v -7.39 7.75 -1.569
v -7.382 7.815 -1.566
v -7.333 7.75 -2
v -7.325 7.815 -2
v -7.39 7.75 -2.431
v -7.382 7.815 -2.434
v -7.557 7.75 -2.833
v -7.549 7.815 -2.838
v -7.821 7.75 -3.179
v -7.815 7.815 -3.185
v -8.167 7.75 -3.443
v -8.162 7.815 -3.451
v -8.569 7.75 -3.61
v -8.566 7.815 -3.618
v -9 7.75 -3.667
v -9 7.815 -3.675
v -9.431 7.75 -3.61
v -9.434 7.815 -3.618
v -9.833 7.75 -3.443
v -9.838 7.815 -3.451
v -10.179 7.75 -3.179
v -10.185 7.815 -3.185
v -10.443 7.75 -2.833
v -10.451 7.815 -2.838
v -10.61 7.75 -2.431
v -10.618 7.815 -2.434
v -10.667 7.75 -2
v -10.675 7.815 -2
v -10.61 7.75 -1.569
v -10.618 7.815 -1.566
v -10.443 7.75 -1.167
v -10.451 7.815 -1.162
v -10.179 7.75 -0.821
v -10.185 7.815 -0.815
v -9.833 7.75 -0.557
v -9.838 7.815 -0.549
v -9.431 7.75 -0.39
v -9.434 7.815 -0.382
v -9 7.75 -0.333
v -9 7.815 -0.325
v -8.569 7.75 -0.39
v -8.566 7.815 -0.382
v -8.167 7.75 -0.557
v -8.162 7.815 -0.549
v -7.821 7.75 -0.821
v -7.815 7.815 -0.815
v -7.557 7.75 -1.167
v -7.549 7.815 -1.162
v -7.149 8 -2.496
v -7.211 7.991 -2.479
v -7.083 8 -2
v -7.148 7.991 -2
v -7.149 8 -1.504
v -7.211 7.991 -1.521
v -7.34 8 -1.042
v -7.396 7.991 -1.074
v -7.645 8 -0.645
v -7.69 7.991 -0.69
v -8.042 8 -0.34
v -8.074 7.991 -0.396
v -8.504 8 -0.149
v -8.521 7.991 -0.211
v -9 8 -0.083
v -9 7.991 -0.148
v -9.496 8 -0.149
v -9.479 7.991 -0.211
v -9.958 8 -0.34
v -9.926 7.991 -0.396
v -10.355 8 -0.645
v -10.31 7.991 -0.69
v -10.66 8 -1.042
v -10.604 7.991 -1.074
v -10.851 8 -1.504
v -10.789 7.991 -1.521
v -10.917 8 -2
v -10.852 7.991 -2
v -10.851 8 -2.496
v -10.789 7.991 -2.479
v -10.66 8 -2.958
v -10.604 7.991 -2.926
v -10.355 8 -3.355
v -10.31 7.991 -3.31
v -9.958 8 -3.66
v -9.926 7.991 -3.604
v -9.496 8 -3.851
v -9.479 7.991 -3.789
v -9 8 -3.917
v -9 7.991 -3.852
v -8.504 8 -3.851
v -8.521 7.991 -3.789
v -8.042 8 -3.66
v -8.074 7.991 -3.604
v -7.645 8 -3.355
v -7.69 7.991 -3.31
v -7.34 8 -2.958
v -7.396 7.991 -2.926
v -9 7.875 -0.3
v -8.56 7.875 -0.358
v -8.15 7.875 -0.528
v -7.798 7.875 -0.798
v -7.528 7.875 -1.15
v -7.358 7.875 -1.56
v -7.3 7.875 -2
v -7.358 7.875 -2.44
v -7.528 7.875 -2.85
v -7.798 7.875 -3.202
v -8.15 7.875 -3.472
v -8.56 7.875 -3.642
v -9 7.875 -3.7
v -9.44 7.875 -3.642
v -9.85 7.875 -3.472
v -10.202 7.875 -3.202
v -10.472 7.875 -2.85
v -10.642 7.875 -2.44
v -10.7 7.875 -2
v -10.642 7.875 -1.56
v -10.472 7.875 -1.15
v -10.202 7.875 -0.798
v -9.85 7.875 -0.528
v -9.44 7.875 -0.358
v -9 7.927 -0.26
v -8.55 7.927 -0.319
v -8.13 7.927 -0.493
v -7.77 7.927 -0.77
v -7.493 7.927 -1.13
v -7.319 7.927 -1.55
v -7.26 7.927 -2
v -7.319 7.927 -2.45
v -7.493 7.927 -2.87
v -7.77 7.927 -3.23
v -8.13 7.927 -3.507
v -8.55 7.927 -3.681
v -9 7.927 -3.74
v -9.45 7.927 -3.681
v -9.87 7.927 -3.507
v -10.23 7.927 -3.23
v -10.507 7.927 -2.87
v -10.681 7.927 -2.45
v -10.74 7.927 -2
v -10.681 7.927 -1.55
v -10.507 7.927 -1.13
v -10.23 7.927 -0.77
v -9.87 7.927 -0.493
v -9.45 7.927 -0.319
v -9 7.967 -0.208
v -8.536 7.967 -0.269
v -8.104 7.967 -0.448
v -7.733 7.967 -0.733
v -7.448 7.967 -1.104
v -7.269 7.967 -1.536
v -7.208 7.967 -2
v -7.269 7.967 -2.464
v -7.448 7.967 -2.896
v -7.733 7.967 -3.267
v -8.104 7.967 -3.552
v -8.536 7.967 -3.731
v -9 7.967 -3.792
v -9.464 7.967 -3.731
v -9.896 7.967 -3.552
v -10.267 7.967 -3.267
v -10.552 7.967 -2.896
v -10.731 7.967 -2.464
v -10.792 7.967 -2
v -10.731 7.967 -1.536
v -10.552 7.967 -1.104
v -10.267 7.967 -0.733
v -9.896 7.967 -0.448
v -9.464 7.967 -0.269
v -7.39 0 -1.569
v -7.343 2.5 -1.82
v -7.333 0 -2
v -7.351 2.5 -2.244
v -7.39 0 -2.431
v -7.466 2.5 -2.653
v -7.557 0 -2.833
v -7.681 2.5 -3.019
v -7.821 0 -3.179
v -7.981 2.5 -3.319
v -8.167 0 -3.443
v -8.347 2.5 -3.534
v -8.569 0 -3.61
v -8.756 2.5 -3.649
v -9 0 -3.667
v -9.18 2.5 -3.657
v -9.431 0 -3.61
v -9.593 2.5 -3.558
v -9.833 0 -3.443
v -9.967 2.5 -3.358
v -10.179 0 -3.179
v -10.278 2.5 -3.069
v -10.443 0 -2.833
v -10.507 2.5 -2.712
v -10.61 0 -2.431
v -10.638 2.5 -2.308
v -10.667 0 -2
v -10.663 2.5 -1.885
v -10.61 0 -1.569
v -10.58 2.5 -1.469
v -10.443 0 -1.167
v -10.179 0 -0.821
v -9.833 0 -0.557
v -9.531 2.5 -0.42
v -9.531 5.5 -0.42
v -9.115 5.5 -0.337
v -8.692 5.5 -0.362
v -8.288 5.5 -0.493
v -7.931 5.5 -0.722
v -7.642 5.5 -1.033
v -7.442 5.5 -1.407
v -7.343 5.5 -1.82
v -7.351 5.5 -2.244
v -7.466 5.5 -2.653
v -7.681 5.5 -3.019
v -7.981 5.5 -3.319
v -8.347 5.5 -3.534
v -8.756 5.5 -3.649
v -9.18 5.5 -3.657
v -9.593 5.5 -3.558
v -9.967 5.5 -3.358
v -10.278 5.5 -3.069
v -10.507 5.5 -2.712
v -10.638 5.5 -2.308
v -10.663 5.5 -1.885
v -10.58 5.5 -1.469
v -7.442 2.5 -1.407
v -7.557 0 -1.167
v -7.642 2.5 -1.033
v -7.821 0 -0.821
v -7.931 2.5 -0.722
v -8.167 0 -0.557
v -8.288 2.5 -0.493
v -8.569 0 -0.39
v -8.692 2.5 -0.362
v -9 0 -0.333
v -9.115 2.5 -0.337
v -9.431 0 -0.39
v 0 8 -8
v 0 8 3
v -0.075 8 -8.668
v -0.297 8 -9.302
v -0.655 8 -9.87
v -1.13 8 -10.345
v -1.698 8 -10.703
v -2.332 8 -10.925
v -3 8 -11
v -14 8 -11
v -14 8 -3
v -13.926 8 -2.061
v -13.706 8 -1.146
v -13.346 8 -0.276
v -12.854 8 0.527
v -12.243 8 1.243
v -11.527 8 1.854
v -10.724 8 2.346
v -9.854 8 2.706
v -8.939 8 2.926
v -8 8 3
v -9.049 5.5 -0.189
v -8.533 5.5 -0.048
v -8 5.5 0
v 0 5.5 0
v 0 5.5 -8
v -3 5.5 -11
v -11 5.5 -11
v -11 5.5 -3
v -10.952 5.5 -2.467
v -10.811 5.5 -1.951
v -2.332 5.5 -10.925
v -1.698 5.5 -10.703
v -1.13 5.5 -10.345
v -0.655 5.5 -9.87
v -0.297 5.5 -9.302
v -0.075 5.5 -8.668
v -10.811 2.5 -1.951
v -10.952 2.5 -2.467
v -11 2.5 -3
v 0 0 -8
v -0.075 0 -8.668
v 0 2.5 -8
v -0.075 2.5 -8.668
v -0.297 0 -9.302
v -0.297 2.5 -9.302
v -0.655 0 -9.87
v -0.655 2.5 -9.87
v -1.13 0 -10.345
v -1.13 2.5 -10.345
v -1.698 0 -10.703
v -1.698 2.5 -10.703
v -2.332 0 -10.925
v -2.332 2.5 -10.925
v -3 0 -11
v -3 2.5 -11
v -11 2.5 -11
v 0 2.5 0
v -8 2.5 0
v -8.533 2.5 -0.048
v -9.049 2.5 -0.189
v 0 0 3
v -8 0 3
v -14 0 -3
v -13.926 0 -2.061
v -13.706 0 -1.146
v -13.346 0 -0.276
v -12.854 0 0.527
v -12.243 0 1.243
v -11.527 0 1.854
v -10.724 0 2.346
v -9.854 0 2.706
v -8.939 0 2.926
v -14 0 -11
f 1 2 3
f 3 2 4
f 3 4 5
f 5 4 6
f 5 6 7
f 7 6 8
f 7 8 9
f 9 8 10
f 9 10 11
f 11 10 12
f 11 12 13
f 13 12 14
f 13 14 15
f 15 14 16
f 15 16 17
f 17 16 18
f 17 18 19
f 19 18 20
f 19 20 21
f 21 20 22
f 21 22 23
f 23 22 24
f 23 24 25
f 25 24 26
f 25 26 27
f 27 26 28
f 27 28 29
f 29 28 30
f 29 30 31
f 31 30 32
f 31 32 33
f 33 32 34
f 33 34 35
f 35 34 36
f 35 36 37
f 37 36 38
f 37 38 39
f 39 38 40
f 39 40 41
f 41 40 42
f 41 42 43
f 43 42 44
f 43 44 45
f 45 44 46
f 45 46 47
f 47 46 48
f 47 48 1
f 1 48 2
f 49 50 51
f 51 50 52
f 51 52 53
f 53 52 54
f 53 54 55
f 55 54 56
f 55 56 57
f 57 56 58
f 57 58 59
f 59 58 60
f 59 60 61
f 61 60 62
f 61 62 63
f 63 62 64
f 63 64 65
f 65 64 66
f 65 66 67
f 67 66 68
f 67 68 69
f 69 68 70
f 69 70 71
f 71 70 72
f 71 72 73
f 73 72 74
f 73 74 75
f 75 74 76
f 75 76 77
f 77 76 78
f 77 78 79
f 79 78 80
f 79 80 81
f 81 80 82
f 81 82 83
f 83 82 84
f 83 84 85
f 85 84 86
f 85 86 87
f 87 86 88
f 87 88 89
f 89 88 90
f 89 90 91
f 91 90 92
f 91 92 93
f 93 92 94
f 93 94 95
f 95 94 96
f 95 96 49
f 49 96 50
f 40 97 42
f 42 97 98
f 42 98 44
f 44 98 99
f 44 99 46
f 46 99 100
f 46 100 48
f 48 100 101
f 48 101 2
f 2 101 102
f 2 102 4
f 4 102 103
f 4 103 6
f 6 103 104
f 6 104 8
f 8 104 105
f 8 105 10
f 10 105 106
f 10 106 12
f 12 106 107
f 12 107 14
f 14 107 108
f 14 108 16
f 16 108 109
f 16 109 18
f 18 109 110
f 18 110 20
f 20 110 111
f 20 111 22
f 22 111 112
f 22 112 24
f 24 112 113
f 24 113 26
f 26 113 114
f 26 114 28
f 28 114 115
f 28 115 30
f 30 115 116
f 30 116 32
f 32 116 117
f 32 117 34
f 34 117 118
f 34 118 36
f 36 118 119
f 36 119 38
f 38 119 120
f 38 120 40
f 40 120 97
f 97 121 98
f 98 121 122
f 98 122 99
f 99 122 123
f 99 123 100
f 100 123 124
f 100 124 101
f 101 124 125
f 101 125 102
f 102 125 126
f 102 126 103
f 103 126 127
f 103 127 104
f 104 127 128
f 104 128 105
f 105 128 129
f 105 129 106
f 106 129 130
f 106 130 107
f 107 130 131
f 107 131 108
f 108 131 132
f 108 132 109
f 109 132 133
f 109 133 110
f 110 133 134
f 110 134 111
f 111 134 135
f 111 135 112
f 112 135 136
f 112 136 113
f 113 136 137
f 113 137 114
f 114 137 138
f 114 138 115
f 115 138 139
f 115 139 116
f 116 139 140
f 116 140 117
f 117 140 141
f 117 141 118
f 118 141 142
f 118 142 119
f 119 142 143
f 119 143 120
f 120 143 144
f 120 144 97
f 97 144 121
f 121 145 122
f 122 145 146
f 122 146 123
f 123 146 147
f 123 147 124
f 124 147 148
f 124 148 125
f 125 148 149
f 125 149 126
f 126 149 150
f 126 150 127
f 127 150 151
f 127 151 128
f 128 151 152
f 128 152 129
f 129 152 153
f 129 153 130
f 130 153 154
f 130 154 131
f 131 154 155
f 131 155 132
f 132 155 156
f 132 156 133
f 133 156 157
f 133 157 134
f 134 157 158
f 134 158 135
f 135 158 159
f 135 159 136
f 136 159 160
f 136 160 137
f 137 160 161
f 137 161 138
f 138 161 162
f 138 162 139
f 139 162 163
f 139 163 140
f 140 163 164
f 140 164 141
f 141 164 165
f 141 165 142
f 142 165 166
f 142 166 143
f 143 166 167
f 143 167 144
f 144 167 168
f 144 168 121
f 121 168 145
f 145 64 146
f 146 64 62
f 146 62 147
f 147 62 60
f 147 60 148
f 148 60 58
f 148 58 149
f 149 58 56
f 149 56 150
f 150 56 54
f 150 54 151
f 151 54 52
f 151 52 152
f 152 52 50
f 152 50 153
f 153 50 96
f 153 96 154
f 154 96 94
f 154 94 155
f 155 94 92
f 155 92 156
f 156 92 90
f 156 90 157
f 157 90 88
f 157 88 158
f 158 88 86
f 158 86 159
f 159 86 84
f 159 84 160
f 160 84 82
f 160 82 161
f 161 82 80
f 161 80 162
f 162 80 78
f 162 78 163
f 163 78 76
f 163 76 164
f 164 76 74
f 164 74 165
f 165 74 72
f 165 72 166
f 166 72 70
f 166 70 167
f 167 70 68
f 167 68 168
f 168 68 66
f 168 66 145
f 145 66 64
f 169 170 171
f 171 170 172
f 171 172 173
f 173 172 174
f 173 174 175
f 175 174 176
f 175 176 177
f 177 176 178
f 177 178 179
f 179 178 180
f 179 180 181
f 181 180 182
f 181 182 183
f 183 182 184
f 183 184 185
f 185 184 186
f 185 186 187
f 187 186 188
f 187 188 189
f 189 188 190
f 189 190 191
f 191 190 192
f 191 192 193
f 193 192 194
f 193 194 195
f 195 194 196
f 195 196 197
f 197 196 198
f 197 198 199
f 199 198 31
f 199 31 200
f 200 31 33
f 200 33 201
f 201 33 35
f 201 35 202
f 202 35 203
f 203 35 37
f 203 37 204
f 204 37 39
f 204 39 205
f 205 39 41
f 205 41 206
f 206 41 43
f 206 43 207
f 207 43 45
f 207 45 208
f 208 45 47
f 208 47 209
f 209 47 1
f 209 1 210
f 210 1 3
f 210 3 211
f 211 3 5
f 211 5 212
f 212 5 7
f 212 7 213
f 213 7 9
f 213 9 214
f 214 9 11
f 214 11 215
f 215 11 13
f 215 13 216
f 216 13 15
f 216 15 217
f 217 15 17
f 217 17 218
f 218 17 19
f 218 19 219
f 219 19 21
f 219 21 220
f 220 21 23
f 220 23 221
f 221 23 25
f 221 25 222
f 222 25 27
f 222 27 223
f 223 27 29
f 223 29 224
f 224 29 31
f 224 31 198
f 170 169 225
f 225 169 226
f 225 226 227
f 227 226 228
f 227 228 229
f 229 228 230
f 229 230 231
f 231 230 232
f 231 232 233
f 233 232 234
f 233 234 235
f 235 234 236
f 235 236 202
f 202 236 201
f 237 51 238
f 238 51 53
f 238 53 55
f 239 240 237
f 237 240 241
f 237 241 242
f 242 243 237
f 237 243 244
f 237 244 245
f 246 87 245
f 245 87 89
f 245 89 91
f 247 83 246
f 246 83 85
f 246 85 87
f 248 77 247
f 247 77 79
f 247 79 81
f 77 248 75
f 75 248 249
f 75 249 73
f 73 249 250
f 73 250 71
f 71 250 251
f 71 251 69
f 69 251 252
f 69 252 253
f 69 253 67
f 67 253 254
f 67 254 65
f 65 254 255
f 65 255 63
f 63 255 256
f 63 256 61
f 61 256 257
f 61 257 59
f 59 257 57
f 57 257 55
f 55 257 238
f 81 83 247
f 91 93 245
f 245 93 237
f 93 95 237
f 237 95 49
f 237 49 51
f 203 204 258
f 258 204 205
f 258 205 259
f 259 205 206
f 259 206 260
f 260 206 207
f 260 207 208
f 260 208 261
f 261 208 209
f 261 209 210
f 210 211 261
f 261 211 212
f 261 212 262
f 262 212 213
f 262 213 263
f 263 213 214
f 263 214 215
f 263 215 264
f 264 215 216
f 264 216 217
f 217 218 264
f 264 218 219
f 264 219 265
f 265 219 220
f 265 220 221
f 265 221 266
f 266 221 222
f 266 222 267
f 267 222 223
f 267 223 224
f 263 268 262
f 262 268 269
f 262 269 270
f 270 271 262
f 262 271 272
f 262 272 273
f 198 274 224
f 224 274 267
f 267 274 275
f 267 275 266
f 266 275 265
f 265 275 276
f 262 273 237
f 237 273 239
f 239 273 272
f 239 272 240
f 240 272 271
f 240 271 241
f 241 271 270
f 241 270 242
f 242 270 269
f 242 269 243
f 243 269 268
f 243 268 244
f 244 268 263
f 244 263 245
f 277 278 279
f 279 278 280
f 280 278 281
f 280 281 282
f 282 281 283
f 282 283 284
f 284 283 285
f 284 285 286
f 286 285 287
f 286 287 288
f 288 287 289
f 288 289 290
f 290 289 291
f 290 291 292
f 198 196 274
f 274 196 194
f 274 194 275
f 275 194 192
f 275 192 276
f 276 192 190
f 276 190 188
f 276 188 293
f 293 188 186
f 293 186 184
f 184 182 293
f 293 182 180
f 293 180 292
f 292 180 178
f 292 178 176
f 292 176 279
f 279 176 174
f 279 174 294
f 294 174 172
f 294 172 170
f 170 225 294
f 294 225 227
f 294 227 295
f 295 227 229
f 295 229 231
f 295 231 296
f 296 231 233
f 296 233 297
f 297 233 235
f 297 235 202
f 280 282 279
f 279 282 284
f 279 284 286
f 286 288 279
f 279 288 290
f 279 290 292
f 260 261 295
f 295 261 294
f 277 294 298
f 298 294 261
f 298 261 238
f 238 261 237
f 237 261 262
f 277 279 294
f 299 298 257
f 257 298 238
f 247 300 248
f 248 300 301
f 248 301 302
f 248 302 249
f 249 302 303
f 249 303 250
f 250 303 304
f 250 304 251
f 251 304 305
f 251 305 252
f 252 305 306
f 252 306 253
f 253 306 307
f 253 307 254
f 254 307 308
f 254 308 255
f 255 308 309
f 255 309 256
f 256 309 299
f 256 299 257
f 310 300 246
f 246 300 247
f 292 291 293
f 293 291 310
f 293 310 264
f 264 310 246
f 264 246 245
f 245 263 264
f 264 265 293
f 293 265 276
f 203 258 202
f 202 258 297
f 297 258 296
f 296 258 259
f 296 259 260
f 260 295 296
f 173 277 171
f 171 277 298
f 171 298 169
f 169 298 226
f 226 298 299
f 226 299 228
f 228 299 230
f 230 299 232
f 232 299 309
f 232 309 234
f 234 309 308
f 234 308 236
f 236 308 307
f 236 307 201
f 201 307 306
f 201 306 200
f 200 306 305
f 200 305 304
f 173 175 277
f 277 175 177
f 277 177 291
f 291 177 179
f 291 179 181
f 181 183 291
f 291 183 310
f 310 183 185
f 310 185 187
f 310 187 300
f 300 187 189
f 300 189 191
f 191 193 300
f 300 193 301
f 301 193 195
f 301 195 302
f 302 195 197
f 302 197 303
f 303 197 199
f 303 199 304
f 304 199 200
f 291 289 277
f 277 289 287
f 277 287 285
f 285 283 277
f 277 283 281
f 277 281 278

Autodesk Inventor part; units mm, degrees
ref_plane "YZ Plane" through (0, 0, 0) normal (1, 0, 0) x (0, 1, 0)
ref_plane "XZ Plane" through (0, 0, 0) normal (0, 1, 0) x (-1, 0, 0)
sketch "Sketch1" plane through (0, 0, 0) normal (0, 1, 0) x (-1, 0, 0)
  line L0 (0, 0) -> (8, 0)
  line L1 (0, 0) -> (0, 3)
  line L2 (0, 3) -> (8, 3)
  arc A0 (11, -3) -> (8, 0) centre (8, -3) ccw
  arc A1 (14, -3) -> (8, 3) centre (8, -3) ccw
  line L3 (11, -3) -> (11, -11)
  line L4 (11, -11) -> (14, -11)
  line L5 (14, -11) -> (14, -3)
  line L6 (0, 0) -> (11, -11)
  dimension "d0" = 3
  dimension "d1" = 3
  dimension "d2" = 8
  dimension "d3" = 3
  dimension "d4" = 8
extrude "Extrusion1" add sketch "Sketch1" along normal blind 8 contours L1 L2 A1 L5 L4 L3 A0 L0
sketch "Sketch2" plane through (0, 0, 0) normal (0, -1, 0) x (1, 0, 0)
  line L0 (0, 0) -> (-8, 0) projected
  arc A0 (-8, 0) -> (-11, -3) centre (-8, -3) ccw projected
  line L1 (-11, -3) -> (-11, -11) projected
  line L2 (0, 0) -> (-11, -11)
  line L3 (-11, -11) -> (-11, -3)
  line L4 (-8, 0) -> (0, 0)
  arc A1 (-8, 0) -> (-11, -3) centre (-8, -3) ccw
  line L5 (0, 0) -> (0, -8)
  arc A2 (-3, -11) -> (0, -8) centre (-3, -8) ccw
  line L6 (-3, -11) -> (-11, -11)
extrude "Extrusion2" add sketch "Sketch2" against normal blind 2.5
ref_plane "Work Plane1" through (0, 5.5, 0) normal (0, 1, 0) x (1, 0, 0)
sketch "Sketch3" plane through (0, 5.5, 0) normal (0, 1, 0) x (1, 0, 0)
  line L0 (0, 0) -> (0, 8) projected
  arc A0 (0, 8) -> (-3, 11) centre (-3, 8) ccw projected
  line L1 (-3, 11) -> (-11, 11) projected
  line L2 (-11, 3) -> (-11, 11) projected
  arc A1 (-11, 3) -> (-8, 0) centre (-8, 3) ccw projected
  line L3 (0, 0) -> (-8, 0) projected
extrude "Extrusion3" add sketch "Sketch3" along normal blind 2.5
sketch "Sketch4" plane through (0, 8, 0) normal (0, 1, 0) x (1, 0, 0)
  arc A0 (0, 8) -> (-3, 11) centre (-3, 8) ccw projected
  line L0 (0, -3) -> (0, 8) projected
  line L1 (-3, 11) -> (-14, 11) projected
  line L2 (-14, 11) -> (-14, 3) projected
  arc A1 (-14, 3) -> (-8, -3) centre (-8, 3) ccw projected
  line L3 (-8, -3) -> (0, -3) projected
  point P0 (0, 0)
sketch "Sketch5" plane through (0, 8, 0) normal (0, 1, 0) x (1, 0, 0)
  circle A0 centre (-9, 2) radius 1.6667
  line L0 (-8, -3) -> (0, -3) projected
  line L1 (-14, 11) -> (-14, 3) projected
  point P0 (0, 0)
  dimension "d21" = 3.3333
  dimension "d22" = 3.3333
  dimension "d23" = 3.3333
extrude "Extrusion4" cut sketch "Sketch5" against normal through all
fillet "Fillet2" radius 0.25 1 edges at (-10.6667, 8, -2)
equation "\"d23\" = d22"
properties part number "Plate Adapter 4.0"
